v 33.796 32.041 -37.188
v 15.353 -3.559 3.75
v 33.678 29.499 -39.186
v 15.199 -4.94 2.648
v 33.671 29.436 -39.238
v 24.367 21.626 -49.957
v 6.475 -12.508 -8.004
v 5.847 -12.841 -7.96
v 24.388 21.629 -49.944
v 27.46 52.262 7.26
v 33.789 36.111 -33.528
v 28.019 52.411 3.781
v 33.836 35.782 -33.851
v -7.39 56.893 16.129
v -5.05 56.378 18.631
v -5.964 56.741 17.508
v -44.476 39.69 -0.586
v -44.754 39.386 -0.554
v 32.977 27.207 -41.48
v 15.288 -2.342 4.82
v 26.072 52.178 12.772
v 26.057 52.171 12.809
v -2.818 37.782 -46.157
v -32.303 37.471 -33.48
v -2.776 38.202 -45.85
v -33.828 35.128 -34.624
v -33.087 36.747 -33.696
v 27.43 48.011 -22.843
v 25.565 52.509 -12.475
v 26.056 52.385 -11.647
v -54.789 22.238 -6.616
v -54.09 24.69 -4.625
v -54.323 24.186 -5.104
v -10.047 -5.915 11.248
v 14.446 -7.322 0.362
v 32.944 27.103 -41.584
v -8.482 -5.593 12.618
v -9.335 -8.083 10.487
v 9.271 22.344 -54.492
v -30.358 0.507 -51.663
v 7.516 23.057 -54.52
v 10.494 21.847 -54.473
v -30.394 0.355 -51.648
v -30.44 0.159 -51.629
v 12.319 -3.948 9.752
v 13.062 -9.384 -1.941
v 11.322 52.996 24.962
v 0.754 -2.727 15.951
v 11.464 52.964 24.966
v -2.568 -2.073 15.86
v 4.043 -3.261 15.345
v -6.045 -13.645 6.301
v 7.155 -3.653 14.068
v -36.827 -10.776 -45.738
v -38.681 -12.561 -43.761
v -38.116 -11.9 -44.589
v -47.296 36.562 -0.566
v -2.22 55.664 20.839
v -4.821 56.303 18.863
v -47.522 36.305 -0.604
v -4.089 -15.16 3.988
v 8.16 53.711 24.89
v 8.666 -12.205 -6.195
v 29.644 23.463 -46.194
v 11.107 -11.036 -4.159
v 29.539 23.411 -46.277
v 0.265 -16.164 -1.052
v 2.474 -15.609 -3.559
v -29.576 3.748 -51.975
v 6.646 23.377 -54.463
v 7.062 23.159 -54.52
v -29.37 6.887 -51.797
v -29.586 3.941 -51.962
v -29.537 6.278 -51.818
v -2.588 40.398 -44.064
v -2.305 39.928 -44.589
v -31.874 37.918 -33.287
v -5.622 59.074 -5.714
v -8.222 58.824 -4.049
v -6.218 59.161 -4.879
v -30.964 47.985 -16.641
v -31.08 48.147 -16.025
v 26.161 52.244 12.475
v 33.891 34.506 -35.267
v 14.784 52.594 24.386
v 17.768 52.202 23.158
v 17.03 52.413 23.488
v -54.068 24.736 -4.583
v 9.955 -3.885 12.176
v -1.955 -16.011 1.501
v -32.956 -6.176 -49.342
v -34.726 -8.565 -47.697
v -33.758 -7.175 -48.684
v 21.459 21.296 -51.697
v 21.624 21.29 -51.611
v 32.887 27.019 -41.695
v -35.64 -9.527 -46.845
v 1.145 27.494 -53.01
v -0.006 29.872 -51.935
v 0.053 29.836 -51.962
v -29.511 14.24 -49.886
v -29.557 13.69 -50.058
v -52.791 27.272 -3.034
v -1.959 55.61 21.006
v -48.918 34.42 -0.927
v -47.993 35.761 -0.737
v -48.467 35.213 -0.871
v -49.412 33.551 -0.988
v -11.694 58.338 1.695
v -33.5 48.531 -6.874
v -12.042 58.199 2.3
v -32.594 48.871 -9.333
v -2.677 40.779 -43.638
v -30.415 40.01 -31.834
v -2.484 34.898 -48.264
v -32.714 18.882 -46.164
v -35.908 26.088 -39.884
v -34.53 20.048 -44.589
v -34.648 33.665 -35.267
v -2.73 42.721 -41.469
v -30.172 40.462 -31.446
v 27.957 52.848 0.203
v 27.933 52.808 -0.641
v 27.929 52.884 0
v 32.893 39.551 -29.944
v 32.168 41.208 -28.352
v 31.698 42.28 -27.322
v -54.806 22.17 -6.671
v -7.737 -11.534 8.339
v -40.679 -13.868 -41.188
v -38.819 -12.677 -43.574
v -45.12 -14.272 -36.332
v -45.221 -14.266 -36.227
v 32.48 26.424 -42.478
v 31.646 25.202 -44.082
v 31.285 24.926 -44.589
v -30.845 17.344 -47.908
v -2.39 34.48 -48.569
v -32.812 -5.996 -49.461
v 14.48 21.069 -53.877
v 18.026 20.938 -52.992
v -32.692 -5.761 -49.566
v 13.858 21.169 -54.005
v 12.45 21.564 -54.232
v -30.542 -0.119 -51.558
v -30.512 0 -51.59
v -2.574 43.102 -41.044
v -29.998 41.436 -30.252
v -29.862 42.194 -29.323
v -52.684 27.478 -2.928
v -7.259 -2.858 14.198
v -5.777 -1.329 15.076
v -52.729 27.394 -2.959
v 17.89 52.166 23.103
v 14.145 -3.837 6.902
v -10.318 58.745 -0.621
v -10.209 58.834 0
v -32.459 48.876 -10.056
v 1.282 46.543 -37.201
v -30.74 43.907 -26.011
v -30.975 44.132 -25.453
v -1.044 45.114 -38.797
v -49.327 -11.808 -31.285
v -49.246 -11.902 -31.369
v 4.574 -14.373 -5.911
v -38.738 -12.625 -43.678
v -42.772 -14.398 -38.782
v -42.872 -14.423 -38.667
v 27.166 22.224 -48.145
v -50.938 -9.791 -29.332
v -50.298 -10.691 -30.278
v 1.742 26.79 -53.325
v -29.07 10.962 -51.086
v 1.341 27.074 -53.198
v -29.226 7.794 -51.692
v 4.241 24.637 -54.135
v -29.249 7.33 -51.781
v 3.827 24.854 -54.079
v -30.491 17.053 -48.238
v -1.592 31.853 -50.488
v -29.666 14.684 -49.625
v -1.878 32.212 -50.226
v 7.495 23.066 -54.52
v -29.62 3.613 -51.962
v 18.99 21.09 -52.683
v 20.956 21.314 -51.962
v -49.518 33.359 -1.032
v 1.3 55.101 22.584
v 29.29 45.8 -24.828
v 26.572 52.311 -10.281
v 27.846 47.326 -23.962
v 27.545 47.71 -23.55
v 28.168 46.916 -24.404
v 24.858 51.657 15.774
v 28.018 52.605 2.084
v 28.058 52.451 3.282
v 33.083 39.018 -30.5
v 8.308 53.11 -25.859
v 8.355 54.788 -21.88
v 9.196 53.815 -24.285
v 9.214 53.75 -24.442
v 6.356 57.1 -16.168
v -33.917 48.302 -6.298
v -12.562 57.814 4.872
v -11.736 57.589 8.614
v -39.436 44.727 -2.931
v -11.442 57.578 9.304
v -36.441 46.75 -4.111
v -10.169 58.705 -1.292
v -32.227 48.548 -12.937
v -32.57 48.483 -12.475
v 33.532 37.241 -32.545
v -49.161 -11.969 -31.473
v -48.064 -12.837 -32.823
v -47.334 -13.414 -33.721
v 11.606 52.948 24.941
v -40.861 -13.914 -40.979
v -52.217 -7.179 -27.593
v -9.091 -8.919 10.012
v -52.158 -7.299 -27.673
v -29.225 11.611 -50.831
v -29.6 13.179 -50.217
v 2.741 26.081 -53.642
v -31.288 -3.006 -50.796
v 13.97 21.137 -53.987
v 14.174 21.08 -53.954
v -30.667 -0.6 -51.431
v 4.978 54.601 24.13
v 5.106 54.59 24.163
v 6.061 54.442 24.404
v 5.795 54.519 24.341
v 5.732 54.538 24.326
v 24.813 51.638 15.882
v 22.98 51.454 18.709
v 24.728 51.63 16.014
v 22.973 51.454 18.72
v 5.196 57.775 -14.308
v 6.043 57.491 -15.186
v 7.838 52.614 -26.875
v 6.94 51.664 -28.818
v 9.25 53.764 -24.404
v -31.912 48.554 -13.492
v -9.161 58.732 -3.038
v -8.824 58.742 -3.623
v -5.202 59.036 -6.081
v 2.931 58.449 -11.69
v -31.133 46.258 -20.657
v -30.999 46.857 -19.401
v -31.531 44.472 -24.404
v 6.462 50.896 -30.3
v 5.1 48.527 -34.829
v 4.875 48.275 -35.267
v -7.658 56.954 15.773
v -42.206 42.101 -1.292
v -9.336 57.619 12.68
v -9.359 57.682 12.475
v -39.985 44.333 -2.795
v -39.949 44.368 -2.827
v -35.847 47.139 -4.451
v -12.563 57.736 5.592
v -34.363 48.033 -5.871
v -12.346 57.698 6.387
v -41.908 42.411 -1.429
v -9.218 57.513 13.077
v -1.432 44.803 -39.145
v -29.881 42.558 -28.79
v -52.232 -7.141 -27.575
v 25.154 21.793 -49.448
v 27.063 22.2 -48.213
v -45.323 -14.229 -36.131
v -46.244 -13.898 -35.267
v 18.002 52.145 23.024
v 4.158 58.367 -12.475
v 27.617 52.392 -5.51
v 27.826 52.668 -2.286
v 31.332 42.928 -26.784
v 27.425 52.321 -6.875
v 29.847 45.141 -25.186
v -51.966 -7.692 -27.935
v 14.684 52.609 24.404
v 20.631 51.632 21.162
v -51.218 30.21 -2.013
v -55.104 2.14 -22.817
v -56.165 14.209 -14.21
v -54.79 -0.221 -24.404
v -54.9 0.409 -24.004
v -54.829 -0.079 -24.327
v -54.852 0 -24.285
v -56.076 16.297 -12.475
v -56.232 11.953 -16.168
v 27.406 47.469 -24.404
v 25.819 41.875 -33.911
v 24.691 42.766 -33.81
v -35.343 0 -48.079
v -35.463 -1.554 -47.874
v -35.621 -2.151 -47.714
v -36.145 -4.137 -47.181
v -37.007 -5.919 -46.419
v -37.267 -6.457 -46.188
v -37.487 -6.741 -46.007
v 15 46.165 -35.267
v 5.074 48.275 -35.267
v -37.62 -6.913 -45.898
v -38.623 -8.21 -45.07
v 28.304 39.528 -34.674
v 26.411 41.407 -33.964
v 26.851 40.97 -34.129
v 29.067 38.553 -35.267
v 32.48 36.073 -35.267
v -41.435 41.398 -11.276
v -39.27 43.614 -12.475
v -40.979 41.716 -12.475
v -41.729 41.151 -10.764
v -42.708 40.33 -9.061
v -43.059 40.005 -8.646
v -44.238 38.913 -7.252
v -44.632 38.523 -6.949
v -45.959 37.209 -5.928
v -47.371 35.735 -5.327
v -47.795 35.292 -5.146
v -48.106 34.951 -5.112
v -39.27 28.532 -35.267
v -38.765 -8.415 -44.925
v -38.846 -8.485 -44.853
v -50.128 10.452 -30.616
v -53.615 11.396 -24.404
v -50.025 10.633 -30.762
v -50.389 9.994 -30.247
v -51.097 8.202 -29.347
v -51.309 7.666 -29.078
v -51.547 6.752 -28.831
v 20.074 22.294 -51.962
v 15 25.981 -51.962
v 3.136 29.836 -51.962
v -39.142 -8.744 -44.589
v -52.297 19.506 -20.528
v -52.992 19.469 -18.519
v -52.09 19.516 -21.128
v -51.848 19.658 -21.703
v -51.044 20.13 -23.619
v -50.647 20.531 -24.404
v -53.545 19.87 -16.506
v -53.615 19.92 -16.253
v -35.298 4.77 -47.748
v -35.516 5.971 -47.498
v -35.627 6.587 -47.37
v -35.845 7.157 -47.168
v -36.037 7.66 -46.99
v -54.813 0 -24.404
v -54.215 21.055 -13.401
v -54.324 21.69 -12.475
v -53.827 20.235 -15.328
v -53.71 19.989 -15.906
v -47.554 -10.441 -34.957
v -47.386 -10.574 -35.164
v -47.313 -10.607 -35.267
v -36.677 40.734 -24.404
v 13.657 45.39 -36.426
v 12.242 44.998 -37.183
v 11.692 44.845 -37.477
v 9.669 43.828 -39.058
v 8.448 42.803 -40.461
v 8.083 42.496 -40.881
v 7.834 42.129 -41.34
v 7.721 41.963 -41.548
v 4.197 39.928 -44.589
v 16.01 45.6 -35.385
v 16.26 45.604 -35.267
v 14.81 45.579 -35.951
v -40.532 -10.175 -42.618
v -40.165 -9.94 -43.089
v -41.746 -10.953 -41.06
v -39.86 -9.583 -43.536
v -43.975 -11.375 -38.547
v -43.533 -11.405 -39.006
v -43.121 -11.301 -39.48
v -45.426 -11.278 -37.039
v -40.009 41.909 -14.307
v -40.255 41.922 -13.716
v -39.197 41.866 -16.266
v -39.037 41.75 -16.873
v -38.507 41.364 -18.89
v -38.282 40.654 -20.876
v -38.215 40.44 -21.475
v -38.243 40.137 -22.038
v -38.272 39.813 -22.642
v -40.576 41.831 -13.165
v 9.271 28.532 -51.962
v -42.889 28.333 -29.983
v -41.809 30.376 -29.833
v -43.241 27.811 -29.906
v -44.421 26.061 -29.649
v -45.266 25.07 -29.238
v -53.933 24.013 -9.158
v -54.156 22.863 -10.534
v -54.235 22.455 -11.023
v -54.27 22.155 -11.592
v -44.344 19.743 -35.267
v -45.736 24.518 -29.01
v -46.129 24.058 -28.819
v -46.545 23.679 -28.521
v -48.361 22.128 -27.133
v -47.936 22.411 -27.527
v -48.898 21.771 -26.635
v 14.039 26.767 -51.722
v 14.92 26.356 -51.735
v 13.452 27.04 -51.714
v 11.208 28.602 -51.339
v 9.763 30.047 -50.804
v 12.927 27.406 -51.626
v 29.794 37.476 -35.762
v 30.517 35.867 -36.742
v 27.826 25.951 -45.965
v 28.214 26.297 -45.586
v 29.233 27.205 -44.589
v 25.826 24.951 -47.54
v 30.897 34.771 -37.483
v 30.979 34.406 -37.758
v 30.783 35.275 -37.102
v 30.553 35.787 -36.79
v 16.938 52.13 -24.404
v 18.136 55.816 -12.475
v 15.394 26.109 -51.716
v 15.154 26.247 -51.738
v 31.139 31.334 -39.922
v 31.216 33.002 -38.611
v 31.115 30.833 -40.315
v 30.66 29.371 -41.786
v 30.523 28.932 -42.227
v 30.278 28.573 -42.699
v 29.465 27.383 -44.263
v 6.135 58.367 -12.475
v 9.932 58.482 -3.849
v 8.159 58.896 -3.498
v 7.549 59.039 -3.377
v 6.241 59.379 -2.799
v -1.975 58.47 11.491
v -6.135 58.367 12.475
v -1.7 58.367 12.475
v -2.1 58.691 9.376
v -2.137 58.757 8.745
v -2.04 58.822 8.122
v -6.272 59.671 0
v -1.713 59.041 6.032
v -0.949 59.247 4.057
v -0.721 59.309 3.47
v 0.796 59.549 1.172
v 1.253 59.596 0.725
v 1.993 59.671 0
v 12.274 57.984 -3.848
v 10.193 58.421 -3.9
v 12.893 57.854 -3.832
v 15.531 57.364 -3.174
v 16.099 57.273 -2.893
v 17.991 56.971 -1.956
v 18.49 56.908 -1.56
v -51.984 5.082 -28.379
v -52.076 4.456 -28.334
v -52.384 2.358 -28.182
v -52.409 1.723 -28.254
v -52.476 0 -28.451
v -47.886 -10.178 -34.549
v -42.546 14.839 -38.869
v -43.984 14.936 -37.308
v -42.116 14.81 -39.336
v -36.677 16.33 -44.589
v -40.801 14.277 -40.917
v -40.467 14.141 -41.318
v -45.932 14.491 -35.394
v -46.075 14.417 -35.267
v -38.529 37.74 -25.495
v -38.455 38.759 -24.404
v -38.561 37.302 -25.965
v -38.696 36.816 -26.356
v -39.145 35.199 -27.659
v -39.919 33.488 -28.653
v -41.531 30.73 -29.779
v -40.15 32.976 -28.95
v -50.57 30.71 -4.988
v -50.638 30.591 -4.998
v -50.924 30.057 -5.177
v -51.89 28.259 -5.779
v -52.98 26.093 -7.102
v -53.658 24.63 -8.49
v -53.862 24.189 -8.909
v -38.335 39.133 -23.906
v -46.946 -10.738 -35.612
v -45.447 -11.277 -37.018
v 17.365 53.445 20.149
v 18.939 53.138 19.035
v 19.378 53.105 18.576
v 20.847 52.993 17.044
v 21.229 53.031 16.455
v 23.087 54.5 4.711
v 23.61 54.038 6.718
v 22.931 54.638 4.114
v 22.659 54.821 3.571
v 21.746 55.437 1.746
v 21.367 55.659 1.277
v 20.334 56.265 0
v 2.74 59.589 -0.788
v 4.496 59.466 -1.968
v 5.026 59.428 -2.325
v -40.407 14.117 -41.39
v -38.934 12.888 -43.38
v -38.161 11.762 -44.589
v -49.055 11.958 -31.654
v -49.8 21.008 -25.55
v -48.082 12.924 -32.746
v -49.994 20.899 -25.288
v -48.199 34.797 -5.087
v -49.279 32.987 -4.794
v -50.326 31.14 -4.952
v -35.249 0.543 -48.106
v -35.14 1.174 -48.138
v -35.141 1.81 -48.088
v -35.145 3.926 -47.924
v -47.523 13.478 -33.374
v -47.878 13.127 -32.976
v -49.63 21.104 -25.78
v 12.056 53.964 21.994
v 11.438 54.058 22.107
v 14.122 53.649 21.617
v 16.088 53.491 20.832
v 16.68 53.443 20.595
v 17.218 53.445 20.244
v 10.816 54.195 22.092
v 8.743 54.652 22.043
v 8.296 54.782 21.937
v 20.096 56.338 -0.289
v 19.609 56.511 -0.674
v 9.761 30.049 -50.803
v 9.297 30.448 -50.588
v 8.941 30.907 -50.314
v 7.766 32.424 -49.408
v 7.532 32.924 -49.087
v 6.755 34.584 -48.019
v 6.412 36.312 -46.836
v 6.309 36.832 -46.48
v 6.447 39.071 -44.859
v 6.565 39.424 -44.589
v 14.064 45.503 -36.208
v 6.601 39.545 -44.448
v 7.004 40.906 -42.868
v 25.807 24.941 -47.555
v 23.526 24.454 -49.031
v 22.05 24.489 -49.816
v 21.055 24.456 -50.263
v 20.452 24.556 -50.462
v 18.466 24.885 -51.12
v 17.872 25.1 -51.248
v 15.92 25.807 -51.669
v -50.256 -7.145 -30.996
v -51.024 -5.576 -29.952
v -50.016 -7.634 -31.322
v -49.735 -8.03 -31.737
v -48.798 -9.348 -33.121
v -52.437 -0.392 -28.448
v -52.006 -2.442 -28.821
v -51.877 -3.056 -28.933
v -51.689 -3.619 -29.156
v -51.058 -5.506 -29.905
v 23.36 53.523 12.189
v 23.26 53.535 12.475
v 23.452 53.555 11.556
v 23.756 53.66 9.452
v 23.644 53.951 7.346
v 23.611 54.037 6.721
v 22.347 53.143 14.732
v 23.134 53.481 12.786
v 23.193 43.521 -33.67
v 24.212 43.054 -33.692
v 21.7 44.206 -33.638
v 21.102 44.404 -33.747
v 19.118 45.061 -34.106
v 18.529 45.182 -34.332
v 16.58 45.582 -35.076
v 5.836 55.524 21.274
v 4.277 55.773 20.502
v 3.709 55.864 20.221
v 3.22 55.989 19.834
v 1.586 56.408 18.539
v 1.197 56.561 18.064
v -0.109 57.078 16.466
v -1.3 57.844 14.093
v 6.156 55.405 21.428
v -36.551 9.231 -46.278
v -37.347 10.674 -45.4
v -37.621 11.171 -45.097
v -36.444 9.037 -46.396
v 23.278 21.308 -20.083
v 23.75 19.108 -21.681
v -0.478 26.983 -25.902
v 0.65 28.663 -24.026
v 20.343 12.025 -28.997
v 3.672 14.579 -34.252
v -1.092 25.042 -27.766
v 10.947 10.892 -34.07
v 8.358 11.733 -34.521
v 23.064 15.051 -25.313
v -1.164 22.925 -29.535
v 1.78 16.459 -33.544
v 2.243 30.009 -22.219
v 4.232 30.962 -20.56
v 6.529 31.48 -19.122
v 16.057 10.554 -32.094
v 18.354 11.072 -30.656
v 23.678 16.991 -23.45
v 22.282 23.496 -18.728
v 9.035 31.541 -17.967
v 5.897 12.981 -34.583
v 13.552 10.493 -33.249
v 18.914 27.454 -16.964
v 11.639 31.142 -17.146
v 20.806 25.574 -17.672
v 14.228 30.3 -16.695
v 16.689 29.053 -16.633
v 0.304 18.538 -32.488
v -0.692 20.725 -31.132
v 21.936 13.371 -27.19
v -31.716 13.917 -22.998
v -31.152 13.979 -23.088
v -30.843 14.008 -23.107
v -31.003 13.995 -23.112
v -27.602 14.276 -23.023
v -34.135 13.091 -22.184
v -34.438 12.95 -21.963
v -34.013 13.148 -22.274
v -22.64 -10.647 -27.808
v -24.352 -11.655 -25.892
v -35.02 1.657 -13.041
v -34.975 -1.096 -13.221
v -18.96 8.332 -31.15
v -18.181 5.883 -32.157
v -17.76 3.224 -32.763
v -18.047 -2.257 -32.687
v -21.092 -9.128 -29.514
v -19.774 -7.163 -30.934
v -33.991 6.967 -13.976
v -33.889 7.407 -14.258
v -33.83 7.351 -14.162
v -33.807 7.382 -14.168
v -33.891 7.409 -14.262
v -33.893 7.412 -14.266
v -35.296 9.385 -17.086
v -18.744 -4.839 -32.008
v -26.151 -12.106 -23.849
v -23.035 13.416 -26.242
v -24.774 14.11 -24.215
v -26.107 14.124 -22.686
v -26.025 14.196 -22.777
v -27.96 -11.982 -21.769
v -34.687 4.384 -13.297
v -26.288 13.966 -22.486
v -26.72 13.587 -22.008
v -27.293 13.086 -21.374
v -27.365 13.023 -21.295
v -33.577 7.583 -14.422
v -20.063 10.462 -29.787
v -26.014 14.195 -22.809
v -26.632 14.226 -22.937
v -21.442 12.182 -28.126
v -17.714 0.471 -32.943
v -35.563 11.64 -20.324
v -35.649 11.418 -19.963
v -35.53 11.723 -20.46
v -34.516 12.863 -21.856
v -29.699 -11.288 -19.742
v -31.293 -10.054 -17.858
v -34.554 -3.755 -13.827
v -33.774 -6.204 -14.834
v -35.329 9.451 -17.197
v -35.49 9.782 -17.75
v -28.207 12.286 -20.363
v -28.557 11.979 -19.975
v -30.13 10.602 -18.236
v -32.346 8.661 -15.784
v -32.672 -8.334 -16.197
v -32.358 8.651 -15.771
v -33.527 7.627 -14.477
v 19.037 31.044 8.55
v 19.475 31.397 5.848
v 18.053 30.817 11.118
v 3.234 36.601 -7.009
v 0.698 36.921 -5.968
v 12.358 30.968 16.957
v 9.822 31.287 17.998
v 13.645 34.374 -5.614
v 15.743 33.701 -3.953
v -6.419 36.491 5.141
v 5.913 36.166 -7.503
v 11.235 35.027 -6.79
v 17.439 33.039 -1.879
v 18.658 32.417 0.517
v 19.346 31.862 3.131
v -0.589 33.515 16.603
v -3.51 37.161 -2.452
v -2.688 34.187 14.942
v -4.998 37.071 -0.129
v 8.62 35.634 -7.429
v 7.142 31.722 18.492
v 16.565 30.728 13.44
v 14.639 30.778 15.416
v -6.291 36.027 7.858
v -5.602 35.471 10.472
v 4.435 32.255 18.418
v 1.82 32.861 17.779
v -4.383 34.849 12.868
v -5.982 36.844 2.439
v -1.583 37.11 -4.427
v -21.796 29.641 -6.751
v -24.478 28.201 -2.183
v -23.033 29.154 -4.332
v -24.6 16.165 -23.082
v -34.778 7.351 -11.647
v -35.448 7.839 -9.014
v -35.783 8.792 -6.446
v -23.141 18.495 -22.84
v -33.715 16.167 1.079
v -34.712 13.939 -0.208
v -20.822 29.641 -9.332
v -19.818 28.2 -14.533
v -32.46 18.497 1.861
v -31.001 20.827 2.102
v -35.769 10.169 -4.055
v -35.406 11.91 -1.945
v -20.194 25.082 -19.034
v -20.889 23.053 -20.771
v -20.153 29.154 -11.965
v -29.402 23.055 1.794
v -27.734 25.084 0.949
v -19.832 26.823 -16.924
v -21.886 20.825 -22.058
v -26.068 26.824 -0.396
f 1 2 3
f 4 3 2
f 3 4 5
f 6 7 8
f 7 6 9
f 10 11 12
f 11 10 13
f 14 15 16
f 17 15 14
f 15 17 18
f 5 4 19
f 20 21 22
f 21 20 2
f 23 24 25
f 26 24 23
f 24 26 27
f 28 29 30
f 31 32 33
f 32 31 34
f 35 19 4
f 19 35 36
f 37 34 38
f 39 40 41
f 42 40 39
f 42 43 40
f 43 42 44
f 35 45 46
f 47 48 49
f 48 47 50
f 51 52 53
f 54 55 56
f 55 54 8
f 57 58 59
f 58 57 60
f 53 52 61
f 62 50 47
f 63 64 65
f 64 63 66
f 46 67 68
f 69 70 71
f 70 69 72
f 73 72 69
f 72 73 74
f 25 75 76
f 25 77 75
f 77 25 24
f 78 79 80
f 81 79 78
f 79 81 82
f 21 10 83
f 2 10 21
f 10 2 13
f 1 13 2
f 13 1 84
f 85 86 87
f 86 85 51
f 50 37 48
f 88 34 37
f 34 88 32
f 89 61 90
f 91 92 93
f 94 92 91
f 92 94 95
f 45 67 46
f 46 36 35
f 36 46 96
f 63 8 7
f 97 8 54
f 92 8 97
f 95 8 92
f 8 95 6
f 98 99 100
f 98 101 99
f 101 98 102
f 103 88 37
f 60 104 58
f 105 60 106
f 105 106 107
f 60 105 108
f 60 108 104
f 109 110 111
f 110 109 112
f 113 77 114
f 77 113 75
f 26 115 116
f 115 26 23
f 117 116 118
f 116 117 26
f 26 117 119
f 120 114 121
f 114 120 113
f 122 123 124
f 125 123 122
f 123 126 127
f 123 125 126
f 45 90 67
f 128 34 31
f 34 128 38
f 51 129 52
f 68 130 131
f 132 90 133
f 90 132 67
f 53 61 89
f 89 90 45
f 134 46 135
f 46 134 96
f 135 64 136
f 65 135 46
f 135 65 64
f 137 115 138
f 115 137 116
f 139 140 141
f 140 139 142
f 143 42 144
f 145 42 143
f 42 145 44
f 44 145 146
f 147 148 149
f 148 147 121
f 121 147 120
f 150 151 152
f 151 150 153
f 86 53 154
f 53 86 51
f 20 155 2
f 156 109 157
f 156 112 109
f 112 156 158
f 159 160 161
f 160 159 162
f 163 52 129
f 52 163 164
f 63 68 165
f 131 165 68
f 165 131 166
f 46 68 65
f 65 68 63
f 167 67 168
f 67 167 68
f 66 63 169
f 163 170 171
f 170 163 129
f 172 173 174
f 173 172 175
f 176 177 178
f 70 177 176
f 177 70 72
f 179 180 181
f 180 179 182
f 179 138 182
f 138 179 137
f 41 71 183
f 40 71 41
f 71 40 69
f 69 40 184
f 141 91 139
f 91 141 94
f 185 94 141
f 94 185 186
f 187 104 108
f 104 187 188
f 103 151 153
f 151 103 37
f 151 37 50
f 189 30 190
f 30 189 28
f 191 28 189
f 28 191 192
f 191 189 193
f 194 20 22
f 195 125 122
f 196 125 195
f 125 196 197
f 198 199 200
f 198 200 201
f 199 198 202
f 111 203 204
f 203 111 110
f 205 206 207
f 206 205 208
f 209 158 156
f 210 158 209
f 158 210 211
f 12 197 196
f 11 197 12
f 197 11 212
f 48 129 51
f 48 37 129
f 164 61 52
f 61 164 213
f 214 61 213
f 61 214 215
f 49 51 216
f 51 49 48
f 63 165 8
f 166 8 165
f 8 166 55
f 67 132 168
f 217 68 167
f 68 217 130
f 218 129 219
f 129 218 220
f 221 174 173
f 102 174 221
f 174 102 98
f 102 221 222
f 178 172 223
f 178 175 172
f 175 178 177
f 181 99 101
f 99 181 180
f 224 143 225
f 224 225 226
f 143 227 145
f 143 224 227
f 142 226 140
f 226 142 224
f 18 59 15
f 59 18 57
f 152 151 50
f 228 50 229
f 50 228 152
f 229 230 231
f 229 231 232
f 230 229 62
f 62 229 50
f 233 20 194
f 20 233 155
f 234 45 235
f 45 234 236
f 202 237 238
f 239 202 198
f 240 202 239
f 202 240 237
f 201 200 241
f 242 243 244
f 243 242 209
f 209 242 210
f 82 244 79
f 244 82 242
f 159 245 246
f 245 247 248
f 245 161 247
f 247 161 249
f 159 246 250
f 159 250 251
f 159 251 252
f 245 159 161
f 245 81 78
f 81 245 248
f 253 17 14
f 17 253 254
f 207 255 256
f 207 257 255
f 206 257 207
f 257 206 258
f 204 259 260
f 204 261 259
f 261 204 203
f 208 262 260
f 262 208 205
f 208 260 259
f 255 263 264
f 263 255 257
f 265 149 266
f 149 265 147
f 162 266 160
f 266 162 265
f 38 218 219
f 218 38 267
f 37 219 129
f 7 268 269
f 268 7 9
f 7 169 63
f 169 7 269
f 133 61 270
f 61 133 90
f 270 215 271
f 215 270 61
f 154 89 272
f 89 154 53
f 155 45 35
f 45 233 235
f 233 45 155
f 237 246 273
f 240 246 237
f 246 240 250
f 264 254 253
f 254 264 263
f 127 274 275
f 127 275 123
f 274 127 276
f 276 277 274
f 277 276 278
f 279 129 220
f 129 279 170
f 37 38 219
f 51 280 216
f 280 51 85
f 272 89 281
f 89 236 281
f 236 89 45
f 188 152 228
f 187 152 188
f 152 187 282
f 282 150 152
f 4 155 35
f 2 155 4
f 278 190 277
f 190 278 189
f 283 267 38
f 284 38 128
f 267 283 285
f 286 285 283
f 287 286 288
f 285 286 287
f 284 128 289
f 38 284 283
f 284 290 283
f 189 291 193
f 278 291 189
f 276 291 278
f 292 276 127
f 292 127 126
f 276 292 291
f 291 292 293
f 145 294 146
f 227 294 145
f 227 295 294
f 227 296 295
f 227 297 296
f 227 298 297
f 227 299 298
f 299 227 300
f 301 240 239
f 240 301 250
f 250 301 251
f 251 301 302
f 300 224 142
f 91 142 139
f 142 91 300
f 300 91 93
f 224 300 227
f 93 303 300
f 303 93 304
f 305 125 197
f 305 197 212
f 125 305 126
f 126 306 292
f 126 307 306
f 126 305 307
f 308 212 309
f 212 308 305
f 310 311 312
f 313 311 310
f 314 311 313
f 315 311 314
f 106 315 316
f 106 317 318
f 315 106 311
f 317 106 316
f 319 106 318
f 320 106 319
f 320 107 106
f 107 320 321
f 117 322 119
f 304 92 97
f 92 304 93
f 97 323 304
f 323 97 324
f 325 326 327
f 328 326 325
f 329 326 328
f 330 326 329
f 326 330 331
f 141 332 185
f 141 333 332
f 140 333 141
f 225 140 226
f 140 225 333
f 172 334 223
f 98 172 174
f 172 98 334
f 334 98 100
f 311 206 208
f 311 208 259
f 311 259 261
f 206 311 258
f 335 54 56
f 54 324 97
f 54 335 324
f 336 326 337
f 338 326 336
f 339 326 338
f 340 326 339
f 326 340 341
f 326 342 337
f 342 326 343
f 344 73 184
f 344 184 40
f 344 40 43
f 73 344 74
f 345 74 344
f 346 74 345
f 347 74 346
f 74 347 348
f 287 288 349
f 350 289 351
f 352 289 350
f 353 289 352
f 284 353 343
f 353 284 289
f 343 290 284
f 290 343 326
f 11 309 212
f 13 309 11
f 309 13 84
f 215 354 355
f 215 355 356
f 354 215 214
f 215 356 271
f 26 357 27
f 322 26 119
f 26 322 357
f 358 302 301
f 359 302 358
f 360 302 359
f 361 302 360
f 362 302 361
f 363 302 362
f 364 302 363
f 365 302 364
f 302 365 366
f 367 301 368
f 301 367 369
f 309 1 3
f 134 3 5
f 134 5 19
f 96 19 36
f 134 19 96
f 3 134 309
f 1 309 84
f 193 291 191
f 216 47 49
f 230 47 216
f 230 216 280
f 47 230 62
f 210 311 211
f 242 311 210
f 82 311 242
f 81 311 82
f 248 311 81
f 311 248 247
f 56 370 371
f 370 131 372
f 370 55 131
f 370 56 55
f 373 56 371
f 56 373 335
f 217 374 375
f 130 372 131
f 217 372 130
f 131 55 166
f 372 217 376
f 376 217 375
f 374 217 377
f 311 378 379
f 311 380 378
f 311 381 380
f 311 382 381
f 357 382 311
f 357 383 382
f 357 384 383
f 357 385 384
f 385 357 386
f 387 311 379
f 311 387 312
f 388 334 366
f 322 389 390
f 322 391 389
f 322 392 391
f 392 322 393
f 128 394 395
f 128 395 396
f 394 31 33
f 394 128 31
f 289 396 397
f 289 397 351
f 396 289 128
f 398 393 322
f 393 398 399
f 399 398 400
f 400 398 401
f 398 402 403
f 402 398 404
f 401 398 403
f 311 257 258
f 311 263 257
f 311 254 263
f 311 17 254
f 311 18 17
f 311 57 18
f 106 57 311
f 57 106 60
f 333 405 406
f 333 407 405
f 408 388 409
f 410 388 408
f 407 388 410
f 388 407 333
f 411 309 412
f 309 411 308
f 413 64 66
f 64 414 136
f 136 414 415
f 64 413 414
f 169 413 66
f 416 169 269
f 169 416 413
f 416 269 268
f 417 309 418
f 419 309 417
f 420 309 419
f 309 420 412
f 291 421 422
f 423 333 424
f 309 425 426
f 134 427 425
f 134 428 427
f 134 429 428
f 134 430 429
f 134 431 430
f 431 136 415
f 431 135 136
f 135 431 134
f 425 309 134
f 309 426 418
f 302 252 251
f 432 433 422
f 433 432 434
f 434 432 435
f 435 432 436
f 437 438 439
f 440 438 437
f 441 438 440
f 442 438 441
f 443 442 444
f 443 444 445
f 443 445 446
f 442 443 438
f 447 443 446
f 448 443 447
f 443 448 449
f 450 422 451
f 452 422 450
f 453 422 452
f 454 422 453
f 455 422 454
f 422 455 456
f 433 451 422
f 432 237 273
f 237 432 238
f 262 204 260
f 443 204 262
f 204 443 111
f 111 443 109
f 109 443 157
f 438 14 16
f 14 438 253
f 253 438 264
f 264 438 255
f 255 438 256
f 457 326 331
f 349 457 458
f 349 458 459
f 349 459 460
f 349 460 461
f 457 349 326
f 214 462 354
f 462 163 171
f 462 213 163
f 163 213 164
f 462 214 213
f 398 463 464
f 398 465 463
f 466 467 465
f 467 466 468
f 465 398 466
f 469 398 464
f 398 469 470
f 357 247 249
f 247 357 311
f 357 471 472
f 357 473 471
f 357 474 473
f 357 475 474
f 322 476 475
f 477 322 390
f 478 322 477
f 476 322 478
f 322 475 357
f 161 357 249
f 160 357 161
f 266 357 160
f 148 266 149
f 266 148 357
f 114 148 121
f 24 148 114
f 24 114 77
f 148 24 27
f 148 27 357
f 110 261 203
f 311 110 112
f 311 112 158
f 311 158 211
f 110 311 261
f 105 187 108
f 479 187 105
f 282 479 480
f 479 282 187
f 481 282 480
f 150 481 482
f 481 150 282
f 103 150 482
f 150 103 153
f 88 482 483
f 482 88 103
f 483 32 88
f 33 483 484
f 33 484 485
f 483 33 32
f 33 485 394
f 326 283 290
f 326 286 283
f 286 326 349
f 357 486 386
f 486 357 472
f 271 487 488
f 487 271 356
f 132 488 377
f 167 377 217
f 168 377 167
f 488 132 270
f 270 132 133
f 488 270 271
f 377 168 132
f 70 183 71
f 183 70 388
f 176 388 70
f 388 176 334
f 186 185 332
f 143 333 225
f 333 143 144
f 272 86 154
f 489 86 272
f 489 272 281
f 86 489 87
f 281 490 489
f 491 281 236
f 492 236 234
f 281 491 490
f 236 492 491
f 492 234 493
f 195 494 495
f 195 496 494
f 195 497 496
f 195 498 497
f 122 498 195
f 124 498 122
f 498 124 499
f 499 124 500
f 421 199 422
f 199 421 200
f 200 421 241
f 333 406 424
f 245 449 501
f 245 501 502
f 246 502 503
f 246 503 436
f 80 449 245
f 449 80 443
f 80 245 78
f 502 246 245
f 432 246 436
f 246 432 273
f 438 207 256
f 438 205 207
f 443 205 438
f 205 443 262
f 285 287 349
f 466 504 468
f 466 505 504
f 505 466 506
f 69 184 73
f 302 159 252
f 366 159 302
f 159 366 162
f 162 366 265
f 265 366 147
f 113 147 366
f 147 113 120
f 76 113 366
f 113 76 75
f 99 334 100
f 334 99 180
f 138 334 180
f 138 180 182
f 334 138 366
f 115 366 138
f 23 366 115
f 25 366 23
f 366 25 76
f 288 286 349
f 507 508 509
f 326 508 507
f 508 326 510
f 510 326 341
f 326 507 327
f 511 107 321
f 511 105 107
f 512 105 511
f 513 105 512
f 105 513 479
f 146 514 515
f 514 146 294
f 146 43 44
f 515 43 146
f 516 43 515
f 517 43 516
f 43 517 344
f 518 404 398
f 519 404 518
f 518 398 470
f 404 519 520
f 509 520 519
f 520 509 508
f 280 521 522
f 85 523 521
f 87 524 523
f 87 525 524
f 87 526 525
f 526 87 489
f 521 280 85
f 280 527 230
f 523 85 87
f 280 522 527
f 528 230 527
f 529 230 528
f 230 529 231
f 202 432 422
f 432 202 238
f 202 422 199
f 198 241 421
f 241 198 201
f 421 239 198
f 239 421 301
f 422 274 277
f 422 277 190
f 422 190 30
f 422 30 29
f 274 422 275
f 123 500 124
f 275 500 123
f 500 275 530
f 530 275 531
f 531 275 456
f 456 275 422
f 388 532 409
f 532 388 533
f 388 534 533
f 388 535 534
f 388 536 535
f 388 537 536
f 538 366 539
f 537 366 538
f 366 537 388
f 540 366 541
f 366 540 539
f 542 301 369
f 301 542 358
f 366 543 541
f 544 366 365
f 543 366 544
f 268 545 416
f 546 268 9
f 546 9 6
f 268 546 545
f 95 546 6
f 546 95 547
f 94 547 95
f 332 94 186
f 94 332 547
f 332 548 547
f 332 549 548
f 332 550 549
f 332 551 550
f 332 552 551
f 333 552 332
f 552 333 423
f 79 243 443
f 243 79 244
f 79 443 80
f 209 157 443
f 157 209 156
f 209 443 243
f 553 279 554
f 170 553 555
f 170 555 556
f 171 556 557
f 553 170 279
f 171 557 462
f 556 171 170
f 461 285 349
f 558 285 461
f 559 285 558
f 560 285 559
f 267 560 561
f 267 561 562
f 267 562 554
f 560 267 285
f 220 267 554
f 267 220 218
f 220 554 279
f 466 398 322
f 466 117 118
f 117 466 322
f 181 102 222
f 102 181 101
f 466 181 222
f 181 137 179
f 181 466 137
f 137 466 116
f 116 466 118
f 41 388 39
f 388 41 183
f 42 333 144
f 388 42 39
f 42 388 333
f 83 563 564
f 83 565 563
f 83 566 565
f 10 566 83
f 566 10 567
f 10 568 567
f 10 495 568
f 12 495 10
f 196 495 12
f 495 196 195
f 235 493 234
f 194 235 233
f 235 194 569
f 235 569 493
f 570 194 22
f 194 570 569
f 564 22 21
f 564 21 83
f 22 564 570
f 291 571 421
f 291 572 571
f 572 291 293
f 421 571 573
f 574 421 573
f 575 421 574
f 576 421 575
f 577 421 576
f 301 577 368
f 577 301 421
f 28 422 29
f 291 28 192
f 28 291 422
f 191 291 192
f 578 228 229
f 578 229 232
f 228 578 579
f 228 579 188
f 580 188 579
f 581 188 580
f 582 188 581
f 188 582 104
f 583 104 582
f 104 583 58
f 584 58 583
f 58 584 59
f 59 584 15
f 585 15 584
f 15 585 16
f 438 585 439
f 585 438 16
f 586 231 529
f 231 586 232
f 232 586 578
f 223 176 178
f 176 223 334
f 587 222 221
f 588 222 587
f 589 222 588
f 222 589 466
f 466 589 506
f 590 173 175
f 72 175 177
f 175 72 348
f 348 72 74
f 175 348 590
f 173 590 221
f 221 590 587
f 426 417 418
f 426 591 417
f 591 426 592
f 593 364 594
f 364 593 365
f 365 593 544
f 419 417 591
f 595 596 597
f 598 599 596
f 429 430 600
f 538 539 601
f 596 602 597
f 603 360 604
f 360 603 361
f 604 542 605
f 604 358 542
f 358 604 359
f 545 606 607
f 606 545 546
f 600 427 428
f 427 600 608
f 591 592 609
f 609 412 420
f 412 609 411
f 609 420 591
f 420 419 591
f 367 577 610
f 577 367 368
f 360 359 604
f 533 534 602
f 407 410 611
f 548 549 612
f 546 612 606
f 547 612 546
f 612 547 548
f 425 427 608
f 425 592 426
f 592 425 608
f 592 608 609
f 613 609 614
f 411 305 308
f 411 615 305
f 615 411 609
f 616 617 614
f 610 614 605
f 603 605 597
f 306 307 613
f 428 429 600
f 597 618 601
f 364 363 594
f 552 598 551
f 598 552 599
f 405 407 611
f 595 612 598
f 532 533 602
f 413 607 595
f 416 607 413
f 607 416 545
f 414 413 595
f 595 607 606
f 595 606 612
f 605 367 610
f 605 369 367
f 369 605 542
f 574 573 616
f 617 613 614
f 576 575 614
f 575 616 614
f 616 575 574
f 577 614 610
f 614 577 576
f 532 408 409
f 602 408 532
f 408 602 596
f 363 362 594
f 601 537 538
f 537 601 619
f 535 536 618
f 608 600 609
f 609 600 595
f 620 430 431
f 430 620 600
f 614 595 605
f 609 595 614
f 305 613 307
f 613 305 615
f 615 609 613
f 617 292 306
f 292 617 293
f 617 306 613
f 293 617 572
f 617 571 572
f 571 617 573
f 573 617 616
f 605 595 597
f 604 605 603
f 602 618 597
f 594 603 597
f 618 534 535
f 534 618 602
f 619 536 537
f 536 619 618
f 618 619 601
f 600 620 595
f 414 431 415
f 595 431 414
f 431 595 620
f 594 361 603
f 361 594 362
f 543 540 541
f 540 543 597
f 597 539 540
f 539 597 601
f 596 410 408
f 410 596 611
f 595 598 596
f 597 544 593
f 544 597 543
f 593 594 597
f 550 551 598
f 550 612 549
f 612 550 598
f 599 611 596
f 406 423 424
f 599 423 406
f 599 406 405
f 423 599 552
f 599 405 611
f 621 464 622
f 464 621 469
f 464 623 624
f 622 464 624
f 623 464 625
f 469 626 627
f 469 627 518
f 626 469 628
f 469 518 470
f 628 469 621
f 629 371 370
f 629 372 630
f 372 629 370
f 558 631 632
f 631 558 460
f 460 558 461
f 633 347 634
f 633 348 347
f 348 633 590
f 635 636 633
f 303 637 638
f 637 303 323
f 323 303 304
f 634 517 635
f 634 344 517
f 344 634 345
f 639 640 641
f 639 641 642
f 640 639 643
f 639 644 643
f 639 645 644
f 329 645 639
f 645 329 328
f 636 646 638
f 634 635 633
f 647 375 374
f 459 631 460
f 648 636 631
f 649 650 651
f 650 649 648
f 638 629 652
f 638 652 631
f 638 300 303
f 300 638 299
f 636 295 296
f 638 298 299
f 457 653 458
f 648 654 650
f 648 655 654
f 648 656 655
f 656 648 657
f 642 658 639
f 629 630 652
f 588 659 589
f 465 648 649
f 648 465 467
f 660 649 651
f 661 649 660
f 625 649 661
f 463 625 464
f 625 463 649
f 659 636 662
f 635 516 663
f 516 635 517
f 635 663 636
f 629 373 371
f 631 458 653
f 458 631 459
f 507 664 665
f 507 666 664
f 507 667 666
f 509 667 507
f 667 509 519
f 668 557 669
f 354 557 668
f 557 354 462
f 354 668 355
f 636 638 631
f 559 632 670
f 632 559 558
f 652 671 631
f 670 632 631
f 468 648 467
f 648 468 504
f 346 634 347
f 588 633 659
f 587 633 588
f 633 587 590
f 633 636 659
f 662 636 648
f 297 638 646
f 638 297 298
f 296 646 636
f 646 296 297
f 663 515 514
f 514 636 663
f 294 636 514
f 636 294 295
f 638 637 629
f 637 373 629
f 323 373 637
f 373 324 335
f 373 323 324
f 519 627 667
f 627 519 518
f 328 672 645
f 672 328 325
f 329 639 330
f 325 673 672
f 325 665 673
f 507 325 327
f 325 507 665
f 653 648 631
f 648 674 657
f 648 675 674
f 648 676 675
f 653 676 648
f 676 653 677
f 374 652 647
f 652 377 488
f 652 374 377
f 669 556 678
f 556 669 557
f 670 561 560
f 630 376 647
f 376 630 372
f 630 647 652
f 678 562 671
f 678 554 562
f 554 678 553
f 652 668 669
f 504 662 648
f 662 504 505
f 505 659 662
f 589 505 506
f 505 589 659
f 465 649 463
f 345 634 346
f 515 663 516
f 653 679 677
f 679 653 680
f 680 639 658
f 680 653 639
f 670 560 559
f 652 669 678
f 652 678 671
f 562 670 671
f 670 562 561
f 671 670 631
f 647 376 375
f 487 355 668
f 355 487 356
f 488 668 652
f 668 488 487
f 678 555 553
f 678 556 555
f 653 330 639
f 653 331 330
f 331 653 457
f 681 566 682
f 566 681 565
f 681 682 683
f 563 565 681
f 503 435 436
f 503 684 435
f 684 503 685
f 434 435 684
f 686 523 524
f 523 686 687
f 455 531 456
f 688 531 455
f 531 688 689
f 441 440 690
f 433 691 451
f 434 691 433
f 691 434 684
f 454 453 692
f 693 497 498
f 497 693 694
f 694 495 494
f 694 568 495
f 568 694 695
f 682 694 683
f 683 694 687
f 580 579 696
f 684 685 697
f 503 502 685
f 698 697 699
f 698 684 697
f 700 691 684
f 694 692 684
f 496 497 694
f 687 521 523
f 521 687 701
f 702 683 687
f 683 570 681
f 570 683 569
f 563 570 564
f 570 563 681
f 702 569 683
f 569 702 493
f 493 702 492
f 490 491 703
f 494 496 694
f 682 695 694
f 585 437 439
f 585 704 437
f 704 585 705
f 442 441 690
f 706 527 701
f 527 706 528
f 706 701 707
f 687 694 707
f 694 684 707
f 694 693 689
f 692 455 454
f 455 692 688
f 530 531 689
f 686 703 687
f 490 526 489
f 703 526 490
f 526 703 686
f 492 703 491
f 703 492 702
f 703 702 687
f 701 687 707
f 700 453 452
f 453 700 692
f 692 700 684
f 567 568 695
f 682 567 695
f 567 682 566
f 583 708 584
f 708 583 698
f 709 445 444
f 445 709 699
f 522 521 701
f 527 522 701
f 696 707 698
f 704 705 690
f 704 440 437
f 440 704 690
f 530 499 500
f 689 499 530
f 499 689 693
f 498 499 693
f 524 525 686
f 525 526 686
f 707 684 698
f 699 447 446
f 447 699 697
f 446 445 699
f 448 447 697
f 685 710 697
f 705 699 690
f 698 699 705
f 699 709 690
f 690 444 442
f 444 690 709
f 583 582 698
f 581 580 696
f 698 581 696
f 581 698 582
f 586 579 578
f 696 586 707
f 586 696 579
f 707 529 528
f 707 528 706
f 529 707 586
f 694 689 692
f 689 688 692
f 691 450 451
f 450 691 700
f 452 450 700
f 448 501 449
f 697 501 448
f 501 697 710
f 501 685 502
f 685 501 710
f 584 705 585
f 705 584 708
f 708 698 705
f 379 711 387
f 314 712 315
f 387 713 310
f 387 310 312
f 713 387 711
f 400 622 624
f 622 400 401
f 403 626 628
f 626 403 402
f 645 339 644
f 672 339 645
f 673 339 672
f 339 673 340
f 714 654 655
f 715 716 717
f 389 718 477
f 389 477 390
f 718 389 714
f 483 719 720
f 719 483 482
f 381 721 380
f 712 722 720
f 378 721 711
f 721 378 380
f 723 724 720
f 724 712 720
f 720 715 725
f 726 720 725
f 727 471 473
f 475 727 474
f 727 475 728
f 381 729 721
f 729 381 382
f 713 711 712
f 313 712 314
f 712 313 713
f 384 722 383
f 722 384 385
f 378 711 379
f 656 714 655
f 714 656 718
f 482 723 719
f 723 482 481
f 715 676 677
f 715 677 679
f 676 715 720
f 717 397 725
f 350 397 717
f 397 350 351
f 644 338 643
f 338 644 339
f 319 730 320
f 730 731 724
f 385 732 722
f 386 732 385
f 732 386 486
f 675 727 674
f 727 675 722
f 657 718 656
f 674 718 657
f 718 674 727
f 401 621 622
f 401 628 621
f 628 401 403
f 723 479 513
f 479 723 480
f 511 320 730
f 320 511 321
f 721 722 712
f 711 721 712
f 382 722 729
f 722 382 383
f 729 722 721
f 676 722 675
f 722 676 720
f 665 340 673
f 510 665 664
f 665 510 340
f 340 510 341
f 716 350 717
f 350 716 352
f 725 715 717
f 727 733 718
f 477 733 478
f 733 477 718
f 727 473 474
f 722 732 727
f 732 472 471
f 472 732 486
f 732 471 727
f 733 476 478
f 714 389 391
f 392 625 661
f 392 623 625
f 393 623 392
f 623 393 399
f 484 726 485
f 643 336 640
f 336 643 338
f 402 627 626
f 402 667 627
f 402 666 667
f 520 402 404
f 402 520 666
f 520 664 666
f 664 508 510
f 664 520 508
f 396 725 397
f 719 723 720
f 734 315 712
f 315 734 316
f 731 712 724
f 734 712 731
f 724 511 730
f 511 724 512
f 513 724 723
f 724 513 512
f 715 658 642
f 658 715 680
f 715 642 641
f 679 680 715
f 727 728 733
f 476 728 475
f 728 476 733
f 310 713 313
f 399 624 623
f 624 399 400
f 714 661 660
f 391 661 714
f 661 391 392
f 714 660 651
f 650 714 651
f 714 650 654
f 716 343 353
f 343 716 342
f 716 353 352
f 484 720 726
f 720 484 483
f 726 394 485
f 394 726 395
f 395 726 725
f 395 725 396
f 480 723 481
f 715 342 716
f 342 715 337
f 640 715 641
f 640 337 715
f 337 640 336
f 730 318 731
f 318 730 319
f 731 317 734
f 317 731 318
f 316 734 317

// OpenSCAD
difference() {
	intersection() {
		hull() {
			rotate(a = -61.4394932690, v = [0.7894196768, 0.3850322241, -0.0000000000]) {
				rotate(a = -90.0000000000, v = [0.9912407072, -0.1320676359, 0.0000000000]) {
					cylinder(h = 60, r = 16.2000000000);
				}
			}
			rotate(a = -61.4394932690, v = [0.7894196768, 0.3850322241, -0.0000000000]) {
				rotate(a = -90.0000000000, v = [0.3812464258, 0.9244734516, -0.0000000000]) {
					cylinder(h = 60, r = 16.2000000000);
				}
			}
			rotate(a = -61.4394932690, v = [0.7894196768, 0.3850322241, -0.0000000000]) {
				rotate(a = -39.7498124436, v = [0.4753619151, -0.4276798666, 0.0000000000]) {
					cylinder(h = 60, r = 16.2000000000);
				}
			}
			rotate(a = -61.4394932690, v = [0.7894196768, 0.3850322241, -0.0000000000]) {
				rotate(a = -54.5691409339, v = [0.3789087619, 0.7213547978, -0.0000000000]) {
					cylinder(h = 60, r = 16.2000000000);
				}
			}
		}
		sphere(r = 60);
	}
	union() {
		rotate(a = -61.4394932690, v = [0.7894196768, 0.3850322241, -0.0000000000]) {
			rotate(a = -90.0000000000, v = [0.9912407072, -0.1320676359, 0.0000000000]) {
				translate(v = [0, 0, 35]) {
					cylinder(h = 100, r = 13.2000000000);
				}
			}
		}
		rotate(a = -61.4394932690, v = [0.7894196768, 0.3850322241, -0.0000000000]) {
			rotate(a = -90.0000000000, v = [0.3812464258, 0.9244734516, -0.0000000000]) {
				translate(v = [0, 0, 35]) {
					cylinder(h = 100, r = 13.2000000000);
				}
			}
		}
		rotate(a = -61.4394932690, v = [0.7894196768, 0.3850322241, -0.0000000000]) {
			rotate(a = -39.7498124436, v = [0.4753619151, -0.4276798666, 0.0000000000]) {
				translate(v = [0, 0, 35]) {
					cylinder(h = 100, r = 13.2000000000);
				}
			}
		}
		rotate(a = -61.4394932690, v = [0.7894196768, 0.3850322241, -0.0000000000]) {
			rotate(a = -54.5691409339, v = [0.3789087619, 0.7213547978, -0.0000000000]) {
				translate(v = [0, 0, 35]) {
					cylinder(h = 100, r = 13.2000000000);
				}
			}
		}
	}
}
